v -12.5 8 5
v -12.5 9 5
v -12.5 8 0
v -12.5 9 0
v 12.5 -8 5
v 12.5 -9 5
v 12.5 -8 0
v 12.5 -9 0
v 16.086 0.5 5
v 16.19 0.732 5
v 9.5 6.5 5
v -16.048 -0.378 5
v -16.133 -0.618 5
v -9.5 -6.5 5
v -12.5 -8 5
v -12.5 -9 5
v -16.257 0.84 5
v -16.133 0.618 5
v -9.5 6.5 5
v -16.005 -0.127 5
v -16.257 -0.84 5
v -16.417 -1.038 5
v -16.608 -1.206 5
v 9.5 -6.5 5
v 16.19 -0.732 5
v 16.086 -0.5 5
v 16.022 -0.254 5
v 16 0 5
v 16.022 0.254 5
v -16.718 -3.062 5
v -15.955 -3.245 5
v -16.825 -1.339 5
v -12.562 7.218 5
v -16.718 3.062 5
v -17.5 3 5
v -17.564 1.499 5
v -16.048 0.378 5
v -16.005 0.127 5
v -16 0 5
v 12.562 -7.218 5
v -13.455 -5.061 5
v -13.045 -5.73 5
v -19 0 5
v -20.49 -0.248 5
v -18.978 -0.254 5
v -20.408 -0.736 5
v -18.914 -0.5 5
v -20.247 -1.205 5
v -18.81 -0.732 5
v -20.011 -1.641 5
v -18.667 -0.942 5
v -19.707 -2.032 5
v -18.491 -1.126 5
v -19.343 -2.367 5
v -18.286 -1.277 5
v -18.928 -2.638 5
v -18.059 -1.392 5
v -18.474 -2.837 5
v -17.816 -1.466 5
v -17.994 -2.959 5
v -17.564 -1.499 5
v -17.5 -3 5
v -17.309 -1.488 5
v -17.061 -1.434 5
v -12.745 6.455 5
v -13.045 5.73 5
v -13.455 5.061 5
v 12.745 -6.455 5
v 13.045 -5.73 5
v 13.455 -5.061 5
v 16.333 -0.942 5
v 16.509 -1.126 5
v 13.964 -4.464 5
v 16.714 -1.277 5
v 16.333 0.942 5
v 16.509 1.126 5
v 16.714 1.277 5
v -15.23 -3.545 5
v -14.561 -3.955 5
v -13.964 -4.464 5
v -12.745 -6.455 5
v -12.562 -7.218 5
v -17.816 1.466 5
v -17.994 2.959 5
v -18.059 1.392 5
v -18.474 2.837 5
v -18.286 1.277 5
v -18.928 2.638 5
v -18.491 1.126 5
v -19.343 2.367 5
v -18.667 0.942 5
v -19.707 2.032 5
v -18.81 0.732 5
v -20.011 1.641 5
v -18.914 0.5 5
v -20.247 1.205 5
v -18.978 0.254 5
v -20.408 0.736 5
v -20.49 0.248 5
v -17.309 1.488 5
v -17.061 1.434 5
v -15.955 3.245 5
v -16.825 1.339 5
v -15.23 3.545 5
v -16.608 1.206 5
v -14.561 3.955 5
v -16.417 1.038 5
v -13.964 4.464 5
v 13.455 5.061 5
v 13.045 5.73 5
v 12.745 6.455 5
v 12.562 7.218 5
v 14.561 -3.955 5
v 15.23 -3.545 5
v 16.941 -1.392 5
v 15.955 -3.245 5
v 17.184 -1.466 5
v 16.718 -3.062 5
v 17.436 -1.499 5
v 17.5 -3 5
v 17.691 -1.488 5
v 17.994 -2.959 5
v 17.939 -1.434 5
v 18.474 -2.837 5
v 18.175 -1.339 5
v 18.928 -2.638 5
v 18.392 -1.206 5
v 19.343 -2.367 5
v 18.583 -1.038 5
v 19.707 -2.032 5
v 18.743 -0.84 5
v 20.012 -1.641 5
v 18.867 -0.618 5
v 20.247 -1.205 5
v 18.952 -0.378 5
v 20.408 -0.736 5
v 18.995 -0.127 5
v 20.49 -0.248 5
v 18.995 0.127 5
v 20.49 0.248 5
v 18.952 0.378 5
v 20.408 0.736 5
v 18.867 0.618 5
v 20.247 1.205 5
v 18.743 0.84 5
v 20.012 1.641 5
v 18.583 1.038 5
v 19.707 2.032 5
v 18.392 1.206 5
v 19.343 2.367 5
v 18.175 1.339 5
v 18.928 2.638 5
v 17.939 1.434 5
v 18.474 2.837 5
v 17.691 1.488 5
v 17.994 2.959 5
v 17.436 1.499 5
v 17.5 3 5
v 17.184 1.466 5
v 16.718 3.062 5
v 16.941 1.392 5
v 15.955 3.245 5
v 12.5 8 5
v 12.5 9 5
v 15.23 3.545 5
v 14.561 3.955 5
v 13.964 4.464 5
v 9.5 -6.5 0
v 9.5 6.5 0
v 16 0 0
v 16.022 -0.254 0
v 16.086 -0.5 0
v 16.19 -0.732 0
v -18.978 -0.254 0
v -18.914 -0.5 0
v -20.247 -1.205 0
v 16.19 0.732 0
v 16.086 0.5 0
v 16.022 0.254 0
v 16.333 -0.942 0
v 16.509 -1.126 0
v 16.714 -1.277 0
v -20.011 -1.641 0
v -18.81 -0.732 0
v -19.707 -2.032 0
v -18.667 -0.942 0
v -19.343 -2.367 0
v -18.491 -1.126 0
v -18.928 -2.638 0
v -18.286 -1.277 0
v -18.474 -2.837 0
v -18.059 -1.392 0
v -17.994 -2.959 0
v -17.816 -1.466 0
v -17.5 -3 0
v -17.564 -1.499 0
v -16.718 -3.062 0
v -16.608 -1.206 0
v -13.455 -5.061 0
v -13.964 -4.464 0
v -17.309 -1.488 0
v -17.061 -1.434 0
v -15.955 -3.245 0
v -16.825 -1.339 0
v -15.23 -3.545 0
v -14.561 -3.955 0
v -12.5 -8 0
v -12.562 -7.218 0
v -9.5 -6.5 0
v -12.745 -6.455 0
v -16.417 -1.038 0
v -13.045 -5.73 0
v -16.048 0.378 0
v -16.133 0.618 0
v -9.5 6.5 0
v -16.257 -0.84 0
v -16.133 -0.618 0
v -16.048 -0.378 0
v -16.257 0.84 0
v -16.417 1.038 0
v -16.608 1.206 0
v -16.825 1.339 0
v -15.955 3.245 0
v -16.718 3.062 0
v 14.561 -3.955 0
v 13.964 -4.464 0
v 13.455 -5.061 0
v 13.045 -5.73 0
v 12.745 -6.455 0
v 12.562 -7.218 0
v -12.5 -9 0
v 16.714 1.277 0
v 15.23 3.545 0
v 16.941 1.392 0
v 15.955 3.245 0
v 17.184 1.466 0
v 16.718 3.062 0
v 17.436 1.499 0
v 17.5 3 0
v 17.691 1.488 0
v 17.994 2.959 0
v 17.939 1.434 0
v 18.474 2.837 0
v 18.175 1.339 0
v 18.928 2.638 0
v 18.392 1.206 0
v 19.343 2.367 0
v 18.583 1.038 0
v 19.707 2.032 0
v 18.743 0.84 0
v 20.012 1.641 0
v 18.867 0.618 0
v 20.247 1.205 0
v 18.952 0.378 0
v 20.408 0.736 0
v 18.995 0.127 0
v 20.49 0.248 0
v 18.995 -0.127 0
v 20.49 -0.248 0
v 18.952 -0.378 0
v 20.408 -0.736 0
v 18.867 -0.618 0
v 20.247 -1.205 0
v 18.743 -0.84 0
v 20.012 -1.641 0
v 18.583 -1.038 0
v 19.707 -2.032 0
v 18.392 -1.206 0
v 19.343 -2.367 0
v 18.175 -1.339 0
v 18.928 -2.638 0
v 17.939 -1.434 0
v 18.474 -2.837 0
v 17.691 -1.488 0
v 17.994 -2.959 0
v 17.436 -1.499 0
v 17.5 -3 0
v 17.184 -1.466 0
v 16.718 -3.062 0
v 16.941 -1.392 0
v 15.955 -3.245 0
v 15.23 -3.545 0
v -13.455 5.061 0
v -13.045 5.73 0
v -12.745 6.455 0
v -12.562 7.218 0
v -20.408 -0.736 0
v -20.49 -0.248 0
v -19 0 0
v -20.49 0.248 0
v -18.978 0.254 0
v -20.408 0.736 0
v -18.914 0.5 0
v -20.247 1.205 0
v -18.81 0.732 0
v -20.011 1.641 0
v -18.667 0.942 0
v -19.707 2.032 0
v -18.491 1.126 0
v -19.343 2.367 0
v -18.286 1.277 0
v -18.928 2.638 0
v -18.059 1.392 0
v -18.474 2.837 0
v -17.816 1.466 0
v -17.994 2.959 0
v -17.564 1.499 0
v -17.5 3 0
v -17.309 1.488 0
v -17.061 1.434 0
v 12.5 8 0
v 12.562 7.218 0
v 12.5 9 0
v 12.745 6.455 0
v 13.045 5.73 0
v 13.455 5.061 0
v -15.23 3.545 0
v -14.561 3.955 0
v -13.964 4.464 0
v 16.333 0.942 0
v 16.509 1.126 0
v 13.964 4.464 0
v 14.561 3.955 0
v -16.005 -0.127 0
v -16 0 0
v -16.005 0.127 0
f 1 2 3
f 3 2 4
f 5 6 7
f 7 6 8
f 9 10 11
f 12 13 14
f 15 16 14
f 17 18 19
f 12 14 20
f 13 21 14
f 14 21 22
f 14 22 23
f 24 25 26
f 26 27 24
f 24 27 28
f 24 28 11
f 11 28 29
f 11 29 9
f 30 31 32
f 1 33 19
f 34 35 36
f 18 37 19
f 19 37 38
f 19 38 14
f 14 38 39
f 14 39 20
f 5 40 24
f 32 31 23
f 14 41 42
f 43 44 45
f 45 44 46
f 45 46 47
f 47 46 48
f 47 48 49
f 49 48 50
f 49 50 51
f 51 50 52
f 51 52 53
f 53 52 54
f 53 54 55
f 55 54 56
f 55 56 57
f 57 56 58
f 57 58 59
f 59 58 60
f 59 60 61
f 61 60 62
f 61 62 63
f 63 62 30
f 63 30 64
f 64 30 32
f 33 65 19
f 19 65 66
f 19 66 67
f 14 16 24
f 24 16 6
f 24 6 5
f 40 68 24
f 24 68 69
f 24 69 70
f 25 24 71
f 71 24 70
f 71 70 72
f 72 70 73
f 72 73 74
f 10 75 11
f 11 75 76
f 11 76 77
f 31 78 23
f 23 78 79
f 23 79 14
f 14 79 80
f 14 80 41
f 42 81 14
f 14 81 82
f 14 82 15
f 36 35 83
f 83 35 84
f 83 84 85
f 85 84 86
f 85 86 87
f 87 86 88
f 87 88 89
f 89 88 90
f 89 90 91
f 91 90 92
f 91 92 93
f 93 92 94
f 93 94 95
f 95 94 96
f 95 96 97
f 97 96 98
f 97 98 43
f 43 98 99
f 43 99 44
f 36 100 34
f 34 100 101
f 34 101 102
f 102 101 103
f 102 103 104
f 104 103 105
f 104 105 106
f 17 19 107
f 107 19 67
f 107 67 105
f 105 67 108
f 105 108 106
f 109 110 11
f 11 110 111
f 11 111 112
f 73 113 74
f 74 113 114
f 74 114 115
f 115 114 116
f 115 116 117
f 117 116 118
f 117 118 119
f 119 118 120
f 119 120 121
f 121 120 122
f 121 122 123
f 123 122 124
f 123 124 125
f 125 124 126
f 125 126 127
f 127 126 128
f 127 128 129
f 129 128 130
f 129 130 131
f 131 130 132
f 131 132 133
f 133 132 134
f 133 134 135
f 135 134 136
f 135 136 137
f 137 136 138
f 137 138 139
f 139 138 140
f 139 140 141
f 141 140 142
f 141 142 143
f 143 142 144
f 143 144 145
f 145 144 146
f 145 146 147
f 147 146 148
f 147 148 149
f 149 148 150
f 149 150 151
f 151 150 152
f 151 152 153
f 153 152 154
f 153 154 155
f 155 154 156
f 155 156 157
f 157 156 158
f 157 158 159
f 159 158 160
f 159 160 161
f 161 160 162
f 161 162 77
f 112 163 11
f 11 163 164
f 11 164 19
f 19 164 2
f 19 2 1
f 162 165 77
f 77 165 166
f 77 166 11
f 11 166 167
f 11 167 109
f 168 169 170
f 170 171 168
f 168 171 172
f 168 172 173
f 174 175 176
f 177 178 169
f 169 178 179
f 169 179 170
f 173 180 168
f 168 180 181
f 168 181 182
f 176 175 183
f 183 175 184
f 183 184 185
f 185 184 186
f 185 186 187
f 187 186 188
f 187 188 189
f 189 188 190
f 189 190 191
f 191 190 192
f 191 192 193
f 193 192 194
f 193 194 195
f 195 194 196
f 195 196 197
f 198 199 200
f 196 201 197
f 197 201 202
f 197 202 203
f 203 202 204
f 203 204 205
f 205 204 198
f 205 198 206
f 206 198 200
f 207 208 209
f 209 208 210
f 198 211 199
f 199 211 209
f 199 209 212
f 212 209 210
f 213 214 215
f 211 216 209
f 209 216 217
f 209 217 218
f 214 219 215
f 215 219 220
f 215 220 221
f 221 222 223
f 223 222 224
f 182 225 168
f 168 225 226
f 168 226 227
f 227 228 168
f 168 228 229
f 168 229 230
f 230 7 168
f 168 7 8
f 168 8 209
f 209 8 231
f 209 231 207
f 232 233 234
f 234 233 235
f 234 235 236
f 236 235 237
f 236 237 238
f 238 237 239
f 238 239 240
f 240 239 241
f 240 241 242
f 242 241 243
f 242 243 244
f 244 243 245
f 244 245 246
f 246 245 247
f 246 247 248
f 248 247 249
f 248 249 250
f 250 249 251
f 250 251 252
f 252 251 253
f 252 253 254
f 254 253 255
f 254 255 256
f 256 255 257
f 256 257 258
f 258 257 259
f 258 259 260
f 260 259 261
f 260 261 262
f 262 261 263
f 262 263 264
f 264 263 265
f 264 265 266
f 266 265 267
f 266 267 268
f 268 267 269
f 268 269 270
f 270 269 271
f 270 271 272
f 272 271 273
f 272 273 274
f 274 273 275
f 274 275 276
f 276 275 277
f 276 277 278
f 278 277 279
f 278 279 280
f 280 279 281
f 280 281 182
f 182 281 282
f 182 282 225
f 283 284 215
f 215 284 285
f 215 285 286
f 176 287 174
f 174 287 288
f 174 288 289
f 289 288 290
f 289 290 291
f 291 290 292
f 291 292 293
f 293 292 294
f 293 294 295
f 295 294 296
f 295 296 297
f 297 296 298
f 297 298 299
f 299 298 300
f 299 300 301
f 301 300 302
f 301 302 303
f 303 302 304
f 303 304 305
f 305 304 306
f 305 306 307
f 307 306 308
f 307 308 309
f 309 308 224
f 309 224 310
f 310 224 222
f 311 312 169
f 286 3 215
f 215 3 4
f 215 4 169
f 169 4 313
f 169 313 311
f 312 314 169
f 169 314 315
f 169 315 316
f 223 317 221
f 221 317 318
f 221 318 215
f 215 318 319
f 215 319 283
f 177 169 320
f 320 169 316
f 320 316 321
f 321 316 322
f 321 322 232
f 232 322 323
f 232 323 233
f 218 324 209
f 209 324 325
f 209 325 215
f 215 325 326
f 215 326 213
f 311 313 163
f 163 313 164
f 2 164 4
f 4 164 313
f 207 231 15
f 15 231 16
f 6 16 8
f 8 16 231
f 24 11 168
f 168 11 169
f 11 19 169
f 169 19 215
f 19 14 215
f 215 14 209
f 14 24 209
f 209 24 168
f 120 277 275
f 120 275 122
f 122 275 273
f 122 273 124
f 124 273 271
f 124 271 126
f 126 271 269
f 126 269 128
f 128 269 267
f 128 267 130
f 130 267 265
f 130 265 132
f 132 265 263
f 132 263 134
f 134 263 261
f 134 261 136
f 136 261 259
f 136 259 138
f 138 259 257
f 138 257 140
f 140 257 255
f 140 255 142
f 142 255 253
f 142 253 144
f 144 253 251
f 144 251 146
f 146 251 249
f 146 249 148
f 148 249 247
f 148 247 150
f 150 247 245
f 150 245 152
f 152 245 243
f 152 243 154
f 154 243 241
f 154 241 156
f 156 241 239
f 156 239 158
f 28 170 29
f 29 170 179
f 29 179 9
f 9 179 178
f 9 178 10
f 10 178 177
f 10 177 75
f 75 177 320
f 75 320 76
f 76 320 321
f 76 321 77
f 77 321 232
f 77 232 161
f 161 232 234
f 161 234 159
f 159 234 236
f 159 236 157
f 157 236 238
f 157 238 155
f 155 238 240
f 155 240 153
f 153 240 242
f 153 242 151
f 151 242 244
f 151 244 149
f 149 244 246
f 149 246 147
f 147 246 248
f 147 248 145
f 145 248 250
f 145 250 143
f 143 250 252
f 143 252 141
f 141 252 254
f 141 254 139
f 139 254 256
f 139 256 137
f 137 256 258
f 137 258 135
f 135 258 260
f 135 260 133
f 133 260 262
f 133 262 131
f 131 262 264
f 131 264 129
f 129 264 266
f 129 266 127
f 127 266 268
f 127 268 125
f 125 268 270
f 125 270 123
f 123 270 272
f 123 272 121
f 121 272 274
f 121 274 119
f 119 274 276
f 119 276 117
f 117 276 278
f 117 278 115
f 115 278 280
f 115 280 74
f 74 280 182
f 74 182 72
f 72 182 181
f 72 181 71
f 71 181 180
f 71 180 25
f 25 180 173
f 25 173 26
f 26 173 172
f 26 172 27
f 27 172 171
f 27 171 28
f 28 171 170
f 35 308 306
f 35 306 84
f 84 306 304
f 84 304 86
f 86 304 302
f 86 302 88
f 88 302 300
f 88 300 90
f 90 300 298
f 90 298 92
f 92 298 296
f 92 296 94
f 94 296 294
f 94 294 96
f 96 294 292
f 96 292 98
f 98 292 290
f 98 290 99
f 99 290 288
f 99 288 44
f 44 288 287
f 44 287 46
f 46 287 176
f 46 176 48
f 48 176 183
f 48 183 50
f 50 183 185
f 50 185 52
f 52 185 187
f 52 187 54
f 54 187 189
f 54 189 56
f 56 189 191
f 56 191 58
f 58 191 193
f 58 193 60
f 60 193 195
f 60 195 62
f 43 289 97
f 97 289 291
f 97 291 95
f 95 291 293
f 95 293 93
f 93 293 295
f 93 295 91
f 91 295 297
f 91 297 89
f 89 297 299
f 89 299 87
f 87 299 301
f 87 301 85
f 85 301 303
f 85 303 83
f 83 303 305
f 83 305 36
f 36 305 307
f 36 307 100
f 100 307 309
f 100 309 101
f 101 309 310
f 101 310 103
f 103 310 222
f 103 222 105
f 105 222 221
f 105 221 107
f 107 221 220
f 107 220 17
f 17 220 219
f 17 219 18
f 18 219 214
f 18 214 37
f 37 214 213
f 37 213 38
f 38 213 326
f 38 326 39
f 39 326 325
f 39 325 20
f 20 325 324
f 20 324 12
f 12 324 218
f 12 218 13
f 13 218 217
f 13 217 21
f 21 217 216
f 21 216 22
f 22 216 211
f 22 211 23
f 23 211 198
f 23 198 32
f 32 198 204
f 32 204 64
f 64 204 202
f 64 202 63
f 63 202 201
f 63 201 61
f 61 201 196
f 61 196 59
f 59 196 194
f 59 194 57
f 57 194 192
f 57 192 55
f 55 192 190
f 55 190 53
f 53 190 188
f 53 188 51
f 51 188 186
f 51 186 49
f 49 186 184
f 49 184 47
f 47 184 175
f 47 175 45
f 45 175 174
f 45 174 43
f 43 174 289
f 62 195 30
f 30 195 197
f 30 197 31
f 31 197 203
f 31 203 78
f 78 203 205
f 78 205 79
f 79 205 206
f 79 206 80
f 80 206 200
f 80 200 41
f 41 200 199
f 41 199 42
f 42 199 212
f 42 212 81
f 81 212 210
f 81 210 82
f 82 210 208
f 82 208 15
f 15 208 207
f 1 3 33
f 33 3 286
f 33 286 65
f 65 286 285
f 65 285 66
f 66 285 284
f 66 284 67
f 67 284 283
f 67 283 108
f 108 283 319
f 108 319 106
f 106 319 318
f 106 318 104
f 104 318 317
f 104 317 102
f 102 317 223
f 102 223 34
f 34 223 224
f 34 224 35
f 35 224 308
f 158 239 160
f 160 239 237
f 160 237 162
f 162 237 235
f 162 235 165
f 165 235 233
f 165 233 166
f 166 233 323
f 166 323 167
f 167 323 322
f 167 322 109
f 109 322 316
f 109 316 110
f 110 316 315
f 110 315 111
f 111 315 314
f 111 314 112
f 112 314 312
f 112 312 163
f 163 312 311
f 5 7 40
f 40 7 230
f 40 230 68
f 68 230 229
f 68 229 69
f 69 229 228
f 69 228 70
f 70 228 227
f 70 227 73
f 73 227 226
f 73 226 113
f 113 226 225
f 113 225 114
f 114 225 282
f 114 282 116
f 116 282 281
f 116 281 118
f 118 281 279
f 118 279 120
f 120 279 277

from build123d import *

# Parameters (mm, degrees)
SKETCH1_W           = 25
SKETCH1_H           = 18
SKETCH1_W_2         = 19
SKETCH1_H_2         = 13
BOSS_EXTRUDE1_DEPTH = 5
SKETCH2_R           = 1.5
BOSS_EXTRUDE2_DEPTH = 5
FILLET1_R           = 5


with BuildPart() as part:
    # Sketch1 → Boss-Extrude1 (new body)
    with BuildSketch(Plane.XY):
        Rectangle(SKETCH1_W, SKETCH1_H)
        Rectangle(SKETCH1_W_2, SKETCH1_H_2, mode=Mode.SUBTRACT)
    extrude(amount=BOSS_EXTRUDE1_DEPTH)

    # Sketch2 → Boss-Extrude2 (add)
    # profile 1 of 2: a face of its own
    with BuildSketch(Plane(origin=(0, 0, 0), x_dir=(-1, 0, 0), z_dir=(0, 0, -1))):
        with BuildLine():
            Line((-17.5, 3), (-12.5, 3))
            Line((-12.5, 3), (-12.5, -3))
            Line((-12.5, -3), (-17.5, -3))
            ThreePointArc((-17.5, -3), (-20.5, 0), (-17.5, 3))
        make_face()
        with Locations((-17.5, 0)):
            Circle(SKETCH2_R, mode=Mode.SUBTRACT)
    # profile 2 of 2: a face of its own
    with BuildSketch(Plane(origin=(0, 0, 0), x_dir=(-1, 0, 0), z_dir=(0, 0, -1))):
        with BuildLine():
            Line((17.5, 3), (12.5, 3))
            Line((12.5, 3), (12.5, -3))
            Line((12.5, -3), (17.5, -3))
            ThreePointArc((17.5, -3), (20.5, 0), (17.5, 3))
        make_face()
        with Locations(Location((17.5, 0, 0), (0, 0, 180))):
            Circle(SKETCH2_R, mode=Mode.SUBTRACT)
    extrude(amount=-BOSS_EXTRUDE2_DEPTH)

    # Fillet1
    fillet1_edges = [part.edges().sort_by_distance(p)[0] for p in [
        (12.5, -3, 2.5),
        (-12.5, -3, 2.5),
        (-12.5, 3, 2.5),
        (12.5, 3, 2.5),
    ]]
    fillet(fillet1_edges, radius=FILLET1_R - 0.0001)  # a hair under: the kernel refuses the full size


solid = part.part
